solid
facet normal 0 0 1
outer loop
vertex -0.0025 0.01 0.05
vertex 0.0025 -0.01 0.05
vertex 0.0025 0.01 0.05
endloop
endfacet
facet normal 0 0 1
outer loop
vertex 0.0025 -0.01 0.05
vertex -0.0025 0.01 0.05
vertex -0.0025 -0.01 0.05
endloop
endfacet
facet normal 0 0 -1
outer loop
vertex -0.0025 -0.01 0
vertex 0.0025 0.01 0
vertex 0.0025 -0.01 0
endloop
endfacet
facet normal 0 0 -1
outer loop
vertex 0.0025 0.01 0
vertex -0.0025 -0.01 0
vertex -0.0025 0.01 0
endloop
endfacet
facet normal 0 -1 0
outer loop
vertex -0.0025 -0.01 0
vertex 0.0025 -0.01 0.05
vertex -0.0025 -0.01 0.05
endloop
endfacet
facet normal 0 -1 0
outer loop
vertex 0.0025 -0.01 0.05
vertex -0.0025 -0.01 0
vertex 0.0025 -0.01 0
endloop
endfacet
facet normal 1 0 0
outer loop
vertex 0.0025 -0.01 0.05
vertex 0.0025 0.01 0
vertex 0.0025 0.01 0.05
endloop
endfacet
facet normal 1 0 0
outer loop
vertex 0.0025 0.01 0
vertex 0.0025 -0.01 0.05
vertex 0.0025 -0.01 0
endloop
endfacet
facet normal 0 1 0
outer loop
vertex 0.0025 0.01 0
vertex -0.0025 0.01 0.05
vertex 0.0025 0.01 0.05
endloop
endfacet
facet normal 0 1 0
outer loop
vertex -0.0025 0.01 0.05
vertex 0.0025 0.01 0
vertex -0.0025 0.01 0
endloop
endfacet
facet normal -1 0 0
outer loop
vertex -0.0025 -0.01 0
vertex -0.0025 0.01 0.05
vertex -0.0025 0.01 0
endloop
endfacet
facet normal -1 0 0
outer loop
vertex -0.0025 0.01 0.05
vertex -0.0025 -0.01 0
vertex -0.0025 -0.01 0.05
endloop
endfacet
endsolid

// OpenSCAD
l=0.02;
w=0.005;
h=0.05;

translate([-w/2, -l/2, 0]) cube([w, l, h]);
